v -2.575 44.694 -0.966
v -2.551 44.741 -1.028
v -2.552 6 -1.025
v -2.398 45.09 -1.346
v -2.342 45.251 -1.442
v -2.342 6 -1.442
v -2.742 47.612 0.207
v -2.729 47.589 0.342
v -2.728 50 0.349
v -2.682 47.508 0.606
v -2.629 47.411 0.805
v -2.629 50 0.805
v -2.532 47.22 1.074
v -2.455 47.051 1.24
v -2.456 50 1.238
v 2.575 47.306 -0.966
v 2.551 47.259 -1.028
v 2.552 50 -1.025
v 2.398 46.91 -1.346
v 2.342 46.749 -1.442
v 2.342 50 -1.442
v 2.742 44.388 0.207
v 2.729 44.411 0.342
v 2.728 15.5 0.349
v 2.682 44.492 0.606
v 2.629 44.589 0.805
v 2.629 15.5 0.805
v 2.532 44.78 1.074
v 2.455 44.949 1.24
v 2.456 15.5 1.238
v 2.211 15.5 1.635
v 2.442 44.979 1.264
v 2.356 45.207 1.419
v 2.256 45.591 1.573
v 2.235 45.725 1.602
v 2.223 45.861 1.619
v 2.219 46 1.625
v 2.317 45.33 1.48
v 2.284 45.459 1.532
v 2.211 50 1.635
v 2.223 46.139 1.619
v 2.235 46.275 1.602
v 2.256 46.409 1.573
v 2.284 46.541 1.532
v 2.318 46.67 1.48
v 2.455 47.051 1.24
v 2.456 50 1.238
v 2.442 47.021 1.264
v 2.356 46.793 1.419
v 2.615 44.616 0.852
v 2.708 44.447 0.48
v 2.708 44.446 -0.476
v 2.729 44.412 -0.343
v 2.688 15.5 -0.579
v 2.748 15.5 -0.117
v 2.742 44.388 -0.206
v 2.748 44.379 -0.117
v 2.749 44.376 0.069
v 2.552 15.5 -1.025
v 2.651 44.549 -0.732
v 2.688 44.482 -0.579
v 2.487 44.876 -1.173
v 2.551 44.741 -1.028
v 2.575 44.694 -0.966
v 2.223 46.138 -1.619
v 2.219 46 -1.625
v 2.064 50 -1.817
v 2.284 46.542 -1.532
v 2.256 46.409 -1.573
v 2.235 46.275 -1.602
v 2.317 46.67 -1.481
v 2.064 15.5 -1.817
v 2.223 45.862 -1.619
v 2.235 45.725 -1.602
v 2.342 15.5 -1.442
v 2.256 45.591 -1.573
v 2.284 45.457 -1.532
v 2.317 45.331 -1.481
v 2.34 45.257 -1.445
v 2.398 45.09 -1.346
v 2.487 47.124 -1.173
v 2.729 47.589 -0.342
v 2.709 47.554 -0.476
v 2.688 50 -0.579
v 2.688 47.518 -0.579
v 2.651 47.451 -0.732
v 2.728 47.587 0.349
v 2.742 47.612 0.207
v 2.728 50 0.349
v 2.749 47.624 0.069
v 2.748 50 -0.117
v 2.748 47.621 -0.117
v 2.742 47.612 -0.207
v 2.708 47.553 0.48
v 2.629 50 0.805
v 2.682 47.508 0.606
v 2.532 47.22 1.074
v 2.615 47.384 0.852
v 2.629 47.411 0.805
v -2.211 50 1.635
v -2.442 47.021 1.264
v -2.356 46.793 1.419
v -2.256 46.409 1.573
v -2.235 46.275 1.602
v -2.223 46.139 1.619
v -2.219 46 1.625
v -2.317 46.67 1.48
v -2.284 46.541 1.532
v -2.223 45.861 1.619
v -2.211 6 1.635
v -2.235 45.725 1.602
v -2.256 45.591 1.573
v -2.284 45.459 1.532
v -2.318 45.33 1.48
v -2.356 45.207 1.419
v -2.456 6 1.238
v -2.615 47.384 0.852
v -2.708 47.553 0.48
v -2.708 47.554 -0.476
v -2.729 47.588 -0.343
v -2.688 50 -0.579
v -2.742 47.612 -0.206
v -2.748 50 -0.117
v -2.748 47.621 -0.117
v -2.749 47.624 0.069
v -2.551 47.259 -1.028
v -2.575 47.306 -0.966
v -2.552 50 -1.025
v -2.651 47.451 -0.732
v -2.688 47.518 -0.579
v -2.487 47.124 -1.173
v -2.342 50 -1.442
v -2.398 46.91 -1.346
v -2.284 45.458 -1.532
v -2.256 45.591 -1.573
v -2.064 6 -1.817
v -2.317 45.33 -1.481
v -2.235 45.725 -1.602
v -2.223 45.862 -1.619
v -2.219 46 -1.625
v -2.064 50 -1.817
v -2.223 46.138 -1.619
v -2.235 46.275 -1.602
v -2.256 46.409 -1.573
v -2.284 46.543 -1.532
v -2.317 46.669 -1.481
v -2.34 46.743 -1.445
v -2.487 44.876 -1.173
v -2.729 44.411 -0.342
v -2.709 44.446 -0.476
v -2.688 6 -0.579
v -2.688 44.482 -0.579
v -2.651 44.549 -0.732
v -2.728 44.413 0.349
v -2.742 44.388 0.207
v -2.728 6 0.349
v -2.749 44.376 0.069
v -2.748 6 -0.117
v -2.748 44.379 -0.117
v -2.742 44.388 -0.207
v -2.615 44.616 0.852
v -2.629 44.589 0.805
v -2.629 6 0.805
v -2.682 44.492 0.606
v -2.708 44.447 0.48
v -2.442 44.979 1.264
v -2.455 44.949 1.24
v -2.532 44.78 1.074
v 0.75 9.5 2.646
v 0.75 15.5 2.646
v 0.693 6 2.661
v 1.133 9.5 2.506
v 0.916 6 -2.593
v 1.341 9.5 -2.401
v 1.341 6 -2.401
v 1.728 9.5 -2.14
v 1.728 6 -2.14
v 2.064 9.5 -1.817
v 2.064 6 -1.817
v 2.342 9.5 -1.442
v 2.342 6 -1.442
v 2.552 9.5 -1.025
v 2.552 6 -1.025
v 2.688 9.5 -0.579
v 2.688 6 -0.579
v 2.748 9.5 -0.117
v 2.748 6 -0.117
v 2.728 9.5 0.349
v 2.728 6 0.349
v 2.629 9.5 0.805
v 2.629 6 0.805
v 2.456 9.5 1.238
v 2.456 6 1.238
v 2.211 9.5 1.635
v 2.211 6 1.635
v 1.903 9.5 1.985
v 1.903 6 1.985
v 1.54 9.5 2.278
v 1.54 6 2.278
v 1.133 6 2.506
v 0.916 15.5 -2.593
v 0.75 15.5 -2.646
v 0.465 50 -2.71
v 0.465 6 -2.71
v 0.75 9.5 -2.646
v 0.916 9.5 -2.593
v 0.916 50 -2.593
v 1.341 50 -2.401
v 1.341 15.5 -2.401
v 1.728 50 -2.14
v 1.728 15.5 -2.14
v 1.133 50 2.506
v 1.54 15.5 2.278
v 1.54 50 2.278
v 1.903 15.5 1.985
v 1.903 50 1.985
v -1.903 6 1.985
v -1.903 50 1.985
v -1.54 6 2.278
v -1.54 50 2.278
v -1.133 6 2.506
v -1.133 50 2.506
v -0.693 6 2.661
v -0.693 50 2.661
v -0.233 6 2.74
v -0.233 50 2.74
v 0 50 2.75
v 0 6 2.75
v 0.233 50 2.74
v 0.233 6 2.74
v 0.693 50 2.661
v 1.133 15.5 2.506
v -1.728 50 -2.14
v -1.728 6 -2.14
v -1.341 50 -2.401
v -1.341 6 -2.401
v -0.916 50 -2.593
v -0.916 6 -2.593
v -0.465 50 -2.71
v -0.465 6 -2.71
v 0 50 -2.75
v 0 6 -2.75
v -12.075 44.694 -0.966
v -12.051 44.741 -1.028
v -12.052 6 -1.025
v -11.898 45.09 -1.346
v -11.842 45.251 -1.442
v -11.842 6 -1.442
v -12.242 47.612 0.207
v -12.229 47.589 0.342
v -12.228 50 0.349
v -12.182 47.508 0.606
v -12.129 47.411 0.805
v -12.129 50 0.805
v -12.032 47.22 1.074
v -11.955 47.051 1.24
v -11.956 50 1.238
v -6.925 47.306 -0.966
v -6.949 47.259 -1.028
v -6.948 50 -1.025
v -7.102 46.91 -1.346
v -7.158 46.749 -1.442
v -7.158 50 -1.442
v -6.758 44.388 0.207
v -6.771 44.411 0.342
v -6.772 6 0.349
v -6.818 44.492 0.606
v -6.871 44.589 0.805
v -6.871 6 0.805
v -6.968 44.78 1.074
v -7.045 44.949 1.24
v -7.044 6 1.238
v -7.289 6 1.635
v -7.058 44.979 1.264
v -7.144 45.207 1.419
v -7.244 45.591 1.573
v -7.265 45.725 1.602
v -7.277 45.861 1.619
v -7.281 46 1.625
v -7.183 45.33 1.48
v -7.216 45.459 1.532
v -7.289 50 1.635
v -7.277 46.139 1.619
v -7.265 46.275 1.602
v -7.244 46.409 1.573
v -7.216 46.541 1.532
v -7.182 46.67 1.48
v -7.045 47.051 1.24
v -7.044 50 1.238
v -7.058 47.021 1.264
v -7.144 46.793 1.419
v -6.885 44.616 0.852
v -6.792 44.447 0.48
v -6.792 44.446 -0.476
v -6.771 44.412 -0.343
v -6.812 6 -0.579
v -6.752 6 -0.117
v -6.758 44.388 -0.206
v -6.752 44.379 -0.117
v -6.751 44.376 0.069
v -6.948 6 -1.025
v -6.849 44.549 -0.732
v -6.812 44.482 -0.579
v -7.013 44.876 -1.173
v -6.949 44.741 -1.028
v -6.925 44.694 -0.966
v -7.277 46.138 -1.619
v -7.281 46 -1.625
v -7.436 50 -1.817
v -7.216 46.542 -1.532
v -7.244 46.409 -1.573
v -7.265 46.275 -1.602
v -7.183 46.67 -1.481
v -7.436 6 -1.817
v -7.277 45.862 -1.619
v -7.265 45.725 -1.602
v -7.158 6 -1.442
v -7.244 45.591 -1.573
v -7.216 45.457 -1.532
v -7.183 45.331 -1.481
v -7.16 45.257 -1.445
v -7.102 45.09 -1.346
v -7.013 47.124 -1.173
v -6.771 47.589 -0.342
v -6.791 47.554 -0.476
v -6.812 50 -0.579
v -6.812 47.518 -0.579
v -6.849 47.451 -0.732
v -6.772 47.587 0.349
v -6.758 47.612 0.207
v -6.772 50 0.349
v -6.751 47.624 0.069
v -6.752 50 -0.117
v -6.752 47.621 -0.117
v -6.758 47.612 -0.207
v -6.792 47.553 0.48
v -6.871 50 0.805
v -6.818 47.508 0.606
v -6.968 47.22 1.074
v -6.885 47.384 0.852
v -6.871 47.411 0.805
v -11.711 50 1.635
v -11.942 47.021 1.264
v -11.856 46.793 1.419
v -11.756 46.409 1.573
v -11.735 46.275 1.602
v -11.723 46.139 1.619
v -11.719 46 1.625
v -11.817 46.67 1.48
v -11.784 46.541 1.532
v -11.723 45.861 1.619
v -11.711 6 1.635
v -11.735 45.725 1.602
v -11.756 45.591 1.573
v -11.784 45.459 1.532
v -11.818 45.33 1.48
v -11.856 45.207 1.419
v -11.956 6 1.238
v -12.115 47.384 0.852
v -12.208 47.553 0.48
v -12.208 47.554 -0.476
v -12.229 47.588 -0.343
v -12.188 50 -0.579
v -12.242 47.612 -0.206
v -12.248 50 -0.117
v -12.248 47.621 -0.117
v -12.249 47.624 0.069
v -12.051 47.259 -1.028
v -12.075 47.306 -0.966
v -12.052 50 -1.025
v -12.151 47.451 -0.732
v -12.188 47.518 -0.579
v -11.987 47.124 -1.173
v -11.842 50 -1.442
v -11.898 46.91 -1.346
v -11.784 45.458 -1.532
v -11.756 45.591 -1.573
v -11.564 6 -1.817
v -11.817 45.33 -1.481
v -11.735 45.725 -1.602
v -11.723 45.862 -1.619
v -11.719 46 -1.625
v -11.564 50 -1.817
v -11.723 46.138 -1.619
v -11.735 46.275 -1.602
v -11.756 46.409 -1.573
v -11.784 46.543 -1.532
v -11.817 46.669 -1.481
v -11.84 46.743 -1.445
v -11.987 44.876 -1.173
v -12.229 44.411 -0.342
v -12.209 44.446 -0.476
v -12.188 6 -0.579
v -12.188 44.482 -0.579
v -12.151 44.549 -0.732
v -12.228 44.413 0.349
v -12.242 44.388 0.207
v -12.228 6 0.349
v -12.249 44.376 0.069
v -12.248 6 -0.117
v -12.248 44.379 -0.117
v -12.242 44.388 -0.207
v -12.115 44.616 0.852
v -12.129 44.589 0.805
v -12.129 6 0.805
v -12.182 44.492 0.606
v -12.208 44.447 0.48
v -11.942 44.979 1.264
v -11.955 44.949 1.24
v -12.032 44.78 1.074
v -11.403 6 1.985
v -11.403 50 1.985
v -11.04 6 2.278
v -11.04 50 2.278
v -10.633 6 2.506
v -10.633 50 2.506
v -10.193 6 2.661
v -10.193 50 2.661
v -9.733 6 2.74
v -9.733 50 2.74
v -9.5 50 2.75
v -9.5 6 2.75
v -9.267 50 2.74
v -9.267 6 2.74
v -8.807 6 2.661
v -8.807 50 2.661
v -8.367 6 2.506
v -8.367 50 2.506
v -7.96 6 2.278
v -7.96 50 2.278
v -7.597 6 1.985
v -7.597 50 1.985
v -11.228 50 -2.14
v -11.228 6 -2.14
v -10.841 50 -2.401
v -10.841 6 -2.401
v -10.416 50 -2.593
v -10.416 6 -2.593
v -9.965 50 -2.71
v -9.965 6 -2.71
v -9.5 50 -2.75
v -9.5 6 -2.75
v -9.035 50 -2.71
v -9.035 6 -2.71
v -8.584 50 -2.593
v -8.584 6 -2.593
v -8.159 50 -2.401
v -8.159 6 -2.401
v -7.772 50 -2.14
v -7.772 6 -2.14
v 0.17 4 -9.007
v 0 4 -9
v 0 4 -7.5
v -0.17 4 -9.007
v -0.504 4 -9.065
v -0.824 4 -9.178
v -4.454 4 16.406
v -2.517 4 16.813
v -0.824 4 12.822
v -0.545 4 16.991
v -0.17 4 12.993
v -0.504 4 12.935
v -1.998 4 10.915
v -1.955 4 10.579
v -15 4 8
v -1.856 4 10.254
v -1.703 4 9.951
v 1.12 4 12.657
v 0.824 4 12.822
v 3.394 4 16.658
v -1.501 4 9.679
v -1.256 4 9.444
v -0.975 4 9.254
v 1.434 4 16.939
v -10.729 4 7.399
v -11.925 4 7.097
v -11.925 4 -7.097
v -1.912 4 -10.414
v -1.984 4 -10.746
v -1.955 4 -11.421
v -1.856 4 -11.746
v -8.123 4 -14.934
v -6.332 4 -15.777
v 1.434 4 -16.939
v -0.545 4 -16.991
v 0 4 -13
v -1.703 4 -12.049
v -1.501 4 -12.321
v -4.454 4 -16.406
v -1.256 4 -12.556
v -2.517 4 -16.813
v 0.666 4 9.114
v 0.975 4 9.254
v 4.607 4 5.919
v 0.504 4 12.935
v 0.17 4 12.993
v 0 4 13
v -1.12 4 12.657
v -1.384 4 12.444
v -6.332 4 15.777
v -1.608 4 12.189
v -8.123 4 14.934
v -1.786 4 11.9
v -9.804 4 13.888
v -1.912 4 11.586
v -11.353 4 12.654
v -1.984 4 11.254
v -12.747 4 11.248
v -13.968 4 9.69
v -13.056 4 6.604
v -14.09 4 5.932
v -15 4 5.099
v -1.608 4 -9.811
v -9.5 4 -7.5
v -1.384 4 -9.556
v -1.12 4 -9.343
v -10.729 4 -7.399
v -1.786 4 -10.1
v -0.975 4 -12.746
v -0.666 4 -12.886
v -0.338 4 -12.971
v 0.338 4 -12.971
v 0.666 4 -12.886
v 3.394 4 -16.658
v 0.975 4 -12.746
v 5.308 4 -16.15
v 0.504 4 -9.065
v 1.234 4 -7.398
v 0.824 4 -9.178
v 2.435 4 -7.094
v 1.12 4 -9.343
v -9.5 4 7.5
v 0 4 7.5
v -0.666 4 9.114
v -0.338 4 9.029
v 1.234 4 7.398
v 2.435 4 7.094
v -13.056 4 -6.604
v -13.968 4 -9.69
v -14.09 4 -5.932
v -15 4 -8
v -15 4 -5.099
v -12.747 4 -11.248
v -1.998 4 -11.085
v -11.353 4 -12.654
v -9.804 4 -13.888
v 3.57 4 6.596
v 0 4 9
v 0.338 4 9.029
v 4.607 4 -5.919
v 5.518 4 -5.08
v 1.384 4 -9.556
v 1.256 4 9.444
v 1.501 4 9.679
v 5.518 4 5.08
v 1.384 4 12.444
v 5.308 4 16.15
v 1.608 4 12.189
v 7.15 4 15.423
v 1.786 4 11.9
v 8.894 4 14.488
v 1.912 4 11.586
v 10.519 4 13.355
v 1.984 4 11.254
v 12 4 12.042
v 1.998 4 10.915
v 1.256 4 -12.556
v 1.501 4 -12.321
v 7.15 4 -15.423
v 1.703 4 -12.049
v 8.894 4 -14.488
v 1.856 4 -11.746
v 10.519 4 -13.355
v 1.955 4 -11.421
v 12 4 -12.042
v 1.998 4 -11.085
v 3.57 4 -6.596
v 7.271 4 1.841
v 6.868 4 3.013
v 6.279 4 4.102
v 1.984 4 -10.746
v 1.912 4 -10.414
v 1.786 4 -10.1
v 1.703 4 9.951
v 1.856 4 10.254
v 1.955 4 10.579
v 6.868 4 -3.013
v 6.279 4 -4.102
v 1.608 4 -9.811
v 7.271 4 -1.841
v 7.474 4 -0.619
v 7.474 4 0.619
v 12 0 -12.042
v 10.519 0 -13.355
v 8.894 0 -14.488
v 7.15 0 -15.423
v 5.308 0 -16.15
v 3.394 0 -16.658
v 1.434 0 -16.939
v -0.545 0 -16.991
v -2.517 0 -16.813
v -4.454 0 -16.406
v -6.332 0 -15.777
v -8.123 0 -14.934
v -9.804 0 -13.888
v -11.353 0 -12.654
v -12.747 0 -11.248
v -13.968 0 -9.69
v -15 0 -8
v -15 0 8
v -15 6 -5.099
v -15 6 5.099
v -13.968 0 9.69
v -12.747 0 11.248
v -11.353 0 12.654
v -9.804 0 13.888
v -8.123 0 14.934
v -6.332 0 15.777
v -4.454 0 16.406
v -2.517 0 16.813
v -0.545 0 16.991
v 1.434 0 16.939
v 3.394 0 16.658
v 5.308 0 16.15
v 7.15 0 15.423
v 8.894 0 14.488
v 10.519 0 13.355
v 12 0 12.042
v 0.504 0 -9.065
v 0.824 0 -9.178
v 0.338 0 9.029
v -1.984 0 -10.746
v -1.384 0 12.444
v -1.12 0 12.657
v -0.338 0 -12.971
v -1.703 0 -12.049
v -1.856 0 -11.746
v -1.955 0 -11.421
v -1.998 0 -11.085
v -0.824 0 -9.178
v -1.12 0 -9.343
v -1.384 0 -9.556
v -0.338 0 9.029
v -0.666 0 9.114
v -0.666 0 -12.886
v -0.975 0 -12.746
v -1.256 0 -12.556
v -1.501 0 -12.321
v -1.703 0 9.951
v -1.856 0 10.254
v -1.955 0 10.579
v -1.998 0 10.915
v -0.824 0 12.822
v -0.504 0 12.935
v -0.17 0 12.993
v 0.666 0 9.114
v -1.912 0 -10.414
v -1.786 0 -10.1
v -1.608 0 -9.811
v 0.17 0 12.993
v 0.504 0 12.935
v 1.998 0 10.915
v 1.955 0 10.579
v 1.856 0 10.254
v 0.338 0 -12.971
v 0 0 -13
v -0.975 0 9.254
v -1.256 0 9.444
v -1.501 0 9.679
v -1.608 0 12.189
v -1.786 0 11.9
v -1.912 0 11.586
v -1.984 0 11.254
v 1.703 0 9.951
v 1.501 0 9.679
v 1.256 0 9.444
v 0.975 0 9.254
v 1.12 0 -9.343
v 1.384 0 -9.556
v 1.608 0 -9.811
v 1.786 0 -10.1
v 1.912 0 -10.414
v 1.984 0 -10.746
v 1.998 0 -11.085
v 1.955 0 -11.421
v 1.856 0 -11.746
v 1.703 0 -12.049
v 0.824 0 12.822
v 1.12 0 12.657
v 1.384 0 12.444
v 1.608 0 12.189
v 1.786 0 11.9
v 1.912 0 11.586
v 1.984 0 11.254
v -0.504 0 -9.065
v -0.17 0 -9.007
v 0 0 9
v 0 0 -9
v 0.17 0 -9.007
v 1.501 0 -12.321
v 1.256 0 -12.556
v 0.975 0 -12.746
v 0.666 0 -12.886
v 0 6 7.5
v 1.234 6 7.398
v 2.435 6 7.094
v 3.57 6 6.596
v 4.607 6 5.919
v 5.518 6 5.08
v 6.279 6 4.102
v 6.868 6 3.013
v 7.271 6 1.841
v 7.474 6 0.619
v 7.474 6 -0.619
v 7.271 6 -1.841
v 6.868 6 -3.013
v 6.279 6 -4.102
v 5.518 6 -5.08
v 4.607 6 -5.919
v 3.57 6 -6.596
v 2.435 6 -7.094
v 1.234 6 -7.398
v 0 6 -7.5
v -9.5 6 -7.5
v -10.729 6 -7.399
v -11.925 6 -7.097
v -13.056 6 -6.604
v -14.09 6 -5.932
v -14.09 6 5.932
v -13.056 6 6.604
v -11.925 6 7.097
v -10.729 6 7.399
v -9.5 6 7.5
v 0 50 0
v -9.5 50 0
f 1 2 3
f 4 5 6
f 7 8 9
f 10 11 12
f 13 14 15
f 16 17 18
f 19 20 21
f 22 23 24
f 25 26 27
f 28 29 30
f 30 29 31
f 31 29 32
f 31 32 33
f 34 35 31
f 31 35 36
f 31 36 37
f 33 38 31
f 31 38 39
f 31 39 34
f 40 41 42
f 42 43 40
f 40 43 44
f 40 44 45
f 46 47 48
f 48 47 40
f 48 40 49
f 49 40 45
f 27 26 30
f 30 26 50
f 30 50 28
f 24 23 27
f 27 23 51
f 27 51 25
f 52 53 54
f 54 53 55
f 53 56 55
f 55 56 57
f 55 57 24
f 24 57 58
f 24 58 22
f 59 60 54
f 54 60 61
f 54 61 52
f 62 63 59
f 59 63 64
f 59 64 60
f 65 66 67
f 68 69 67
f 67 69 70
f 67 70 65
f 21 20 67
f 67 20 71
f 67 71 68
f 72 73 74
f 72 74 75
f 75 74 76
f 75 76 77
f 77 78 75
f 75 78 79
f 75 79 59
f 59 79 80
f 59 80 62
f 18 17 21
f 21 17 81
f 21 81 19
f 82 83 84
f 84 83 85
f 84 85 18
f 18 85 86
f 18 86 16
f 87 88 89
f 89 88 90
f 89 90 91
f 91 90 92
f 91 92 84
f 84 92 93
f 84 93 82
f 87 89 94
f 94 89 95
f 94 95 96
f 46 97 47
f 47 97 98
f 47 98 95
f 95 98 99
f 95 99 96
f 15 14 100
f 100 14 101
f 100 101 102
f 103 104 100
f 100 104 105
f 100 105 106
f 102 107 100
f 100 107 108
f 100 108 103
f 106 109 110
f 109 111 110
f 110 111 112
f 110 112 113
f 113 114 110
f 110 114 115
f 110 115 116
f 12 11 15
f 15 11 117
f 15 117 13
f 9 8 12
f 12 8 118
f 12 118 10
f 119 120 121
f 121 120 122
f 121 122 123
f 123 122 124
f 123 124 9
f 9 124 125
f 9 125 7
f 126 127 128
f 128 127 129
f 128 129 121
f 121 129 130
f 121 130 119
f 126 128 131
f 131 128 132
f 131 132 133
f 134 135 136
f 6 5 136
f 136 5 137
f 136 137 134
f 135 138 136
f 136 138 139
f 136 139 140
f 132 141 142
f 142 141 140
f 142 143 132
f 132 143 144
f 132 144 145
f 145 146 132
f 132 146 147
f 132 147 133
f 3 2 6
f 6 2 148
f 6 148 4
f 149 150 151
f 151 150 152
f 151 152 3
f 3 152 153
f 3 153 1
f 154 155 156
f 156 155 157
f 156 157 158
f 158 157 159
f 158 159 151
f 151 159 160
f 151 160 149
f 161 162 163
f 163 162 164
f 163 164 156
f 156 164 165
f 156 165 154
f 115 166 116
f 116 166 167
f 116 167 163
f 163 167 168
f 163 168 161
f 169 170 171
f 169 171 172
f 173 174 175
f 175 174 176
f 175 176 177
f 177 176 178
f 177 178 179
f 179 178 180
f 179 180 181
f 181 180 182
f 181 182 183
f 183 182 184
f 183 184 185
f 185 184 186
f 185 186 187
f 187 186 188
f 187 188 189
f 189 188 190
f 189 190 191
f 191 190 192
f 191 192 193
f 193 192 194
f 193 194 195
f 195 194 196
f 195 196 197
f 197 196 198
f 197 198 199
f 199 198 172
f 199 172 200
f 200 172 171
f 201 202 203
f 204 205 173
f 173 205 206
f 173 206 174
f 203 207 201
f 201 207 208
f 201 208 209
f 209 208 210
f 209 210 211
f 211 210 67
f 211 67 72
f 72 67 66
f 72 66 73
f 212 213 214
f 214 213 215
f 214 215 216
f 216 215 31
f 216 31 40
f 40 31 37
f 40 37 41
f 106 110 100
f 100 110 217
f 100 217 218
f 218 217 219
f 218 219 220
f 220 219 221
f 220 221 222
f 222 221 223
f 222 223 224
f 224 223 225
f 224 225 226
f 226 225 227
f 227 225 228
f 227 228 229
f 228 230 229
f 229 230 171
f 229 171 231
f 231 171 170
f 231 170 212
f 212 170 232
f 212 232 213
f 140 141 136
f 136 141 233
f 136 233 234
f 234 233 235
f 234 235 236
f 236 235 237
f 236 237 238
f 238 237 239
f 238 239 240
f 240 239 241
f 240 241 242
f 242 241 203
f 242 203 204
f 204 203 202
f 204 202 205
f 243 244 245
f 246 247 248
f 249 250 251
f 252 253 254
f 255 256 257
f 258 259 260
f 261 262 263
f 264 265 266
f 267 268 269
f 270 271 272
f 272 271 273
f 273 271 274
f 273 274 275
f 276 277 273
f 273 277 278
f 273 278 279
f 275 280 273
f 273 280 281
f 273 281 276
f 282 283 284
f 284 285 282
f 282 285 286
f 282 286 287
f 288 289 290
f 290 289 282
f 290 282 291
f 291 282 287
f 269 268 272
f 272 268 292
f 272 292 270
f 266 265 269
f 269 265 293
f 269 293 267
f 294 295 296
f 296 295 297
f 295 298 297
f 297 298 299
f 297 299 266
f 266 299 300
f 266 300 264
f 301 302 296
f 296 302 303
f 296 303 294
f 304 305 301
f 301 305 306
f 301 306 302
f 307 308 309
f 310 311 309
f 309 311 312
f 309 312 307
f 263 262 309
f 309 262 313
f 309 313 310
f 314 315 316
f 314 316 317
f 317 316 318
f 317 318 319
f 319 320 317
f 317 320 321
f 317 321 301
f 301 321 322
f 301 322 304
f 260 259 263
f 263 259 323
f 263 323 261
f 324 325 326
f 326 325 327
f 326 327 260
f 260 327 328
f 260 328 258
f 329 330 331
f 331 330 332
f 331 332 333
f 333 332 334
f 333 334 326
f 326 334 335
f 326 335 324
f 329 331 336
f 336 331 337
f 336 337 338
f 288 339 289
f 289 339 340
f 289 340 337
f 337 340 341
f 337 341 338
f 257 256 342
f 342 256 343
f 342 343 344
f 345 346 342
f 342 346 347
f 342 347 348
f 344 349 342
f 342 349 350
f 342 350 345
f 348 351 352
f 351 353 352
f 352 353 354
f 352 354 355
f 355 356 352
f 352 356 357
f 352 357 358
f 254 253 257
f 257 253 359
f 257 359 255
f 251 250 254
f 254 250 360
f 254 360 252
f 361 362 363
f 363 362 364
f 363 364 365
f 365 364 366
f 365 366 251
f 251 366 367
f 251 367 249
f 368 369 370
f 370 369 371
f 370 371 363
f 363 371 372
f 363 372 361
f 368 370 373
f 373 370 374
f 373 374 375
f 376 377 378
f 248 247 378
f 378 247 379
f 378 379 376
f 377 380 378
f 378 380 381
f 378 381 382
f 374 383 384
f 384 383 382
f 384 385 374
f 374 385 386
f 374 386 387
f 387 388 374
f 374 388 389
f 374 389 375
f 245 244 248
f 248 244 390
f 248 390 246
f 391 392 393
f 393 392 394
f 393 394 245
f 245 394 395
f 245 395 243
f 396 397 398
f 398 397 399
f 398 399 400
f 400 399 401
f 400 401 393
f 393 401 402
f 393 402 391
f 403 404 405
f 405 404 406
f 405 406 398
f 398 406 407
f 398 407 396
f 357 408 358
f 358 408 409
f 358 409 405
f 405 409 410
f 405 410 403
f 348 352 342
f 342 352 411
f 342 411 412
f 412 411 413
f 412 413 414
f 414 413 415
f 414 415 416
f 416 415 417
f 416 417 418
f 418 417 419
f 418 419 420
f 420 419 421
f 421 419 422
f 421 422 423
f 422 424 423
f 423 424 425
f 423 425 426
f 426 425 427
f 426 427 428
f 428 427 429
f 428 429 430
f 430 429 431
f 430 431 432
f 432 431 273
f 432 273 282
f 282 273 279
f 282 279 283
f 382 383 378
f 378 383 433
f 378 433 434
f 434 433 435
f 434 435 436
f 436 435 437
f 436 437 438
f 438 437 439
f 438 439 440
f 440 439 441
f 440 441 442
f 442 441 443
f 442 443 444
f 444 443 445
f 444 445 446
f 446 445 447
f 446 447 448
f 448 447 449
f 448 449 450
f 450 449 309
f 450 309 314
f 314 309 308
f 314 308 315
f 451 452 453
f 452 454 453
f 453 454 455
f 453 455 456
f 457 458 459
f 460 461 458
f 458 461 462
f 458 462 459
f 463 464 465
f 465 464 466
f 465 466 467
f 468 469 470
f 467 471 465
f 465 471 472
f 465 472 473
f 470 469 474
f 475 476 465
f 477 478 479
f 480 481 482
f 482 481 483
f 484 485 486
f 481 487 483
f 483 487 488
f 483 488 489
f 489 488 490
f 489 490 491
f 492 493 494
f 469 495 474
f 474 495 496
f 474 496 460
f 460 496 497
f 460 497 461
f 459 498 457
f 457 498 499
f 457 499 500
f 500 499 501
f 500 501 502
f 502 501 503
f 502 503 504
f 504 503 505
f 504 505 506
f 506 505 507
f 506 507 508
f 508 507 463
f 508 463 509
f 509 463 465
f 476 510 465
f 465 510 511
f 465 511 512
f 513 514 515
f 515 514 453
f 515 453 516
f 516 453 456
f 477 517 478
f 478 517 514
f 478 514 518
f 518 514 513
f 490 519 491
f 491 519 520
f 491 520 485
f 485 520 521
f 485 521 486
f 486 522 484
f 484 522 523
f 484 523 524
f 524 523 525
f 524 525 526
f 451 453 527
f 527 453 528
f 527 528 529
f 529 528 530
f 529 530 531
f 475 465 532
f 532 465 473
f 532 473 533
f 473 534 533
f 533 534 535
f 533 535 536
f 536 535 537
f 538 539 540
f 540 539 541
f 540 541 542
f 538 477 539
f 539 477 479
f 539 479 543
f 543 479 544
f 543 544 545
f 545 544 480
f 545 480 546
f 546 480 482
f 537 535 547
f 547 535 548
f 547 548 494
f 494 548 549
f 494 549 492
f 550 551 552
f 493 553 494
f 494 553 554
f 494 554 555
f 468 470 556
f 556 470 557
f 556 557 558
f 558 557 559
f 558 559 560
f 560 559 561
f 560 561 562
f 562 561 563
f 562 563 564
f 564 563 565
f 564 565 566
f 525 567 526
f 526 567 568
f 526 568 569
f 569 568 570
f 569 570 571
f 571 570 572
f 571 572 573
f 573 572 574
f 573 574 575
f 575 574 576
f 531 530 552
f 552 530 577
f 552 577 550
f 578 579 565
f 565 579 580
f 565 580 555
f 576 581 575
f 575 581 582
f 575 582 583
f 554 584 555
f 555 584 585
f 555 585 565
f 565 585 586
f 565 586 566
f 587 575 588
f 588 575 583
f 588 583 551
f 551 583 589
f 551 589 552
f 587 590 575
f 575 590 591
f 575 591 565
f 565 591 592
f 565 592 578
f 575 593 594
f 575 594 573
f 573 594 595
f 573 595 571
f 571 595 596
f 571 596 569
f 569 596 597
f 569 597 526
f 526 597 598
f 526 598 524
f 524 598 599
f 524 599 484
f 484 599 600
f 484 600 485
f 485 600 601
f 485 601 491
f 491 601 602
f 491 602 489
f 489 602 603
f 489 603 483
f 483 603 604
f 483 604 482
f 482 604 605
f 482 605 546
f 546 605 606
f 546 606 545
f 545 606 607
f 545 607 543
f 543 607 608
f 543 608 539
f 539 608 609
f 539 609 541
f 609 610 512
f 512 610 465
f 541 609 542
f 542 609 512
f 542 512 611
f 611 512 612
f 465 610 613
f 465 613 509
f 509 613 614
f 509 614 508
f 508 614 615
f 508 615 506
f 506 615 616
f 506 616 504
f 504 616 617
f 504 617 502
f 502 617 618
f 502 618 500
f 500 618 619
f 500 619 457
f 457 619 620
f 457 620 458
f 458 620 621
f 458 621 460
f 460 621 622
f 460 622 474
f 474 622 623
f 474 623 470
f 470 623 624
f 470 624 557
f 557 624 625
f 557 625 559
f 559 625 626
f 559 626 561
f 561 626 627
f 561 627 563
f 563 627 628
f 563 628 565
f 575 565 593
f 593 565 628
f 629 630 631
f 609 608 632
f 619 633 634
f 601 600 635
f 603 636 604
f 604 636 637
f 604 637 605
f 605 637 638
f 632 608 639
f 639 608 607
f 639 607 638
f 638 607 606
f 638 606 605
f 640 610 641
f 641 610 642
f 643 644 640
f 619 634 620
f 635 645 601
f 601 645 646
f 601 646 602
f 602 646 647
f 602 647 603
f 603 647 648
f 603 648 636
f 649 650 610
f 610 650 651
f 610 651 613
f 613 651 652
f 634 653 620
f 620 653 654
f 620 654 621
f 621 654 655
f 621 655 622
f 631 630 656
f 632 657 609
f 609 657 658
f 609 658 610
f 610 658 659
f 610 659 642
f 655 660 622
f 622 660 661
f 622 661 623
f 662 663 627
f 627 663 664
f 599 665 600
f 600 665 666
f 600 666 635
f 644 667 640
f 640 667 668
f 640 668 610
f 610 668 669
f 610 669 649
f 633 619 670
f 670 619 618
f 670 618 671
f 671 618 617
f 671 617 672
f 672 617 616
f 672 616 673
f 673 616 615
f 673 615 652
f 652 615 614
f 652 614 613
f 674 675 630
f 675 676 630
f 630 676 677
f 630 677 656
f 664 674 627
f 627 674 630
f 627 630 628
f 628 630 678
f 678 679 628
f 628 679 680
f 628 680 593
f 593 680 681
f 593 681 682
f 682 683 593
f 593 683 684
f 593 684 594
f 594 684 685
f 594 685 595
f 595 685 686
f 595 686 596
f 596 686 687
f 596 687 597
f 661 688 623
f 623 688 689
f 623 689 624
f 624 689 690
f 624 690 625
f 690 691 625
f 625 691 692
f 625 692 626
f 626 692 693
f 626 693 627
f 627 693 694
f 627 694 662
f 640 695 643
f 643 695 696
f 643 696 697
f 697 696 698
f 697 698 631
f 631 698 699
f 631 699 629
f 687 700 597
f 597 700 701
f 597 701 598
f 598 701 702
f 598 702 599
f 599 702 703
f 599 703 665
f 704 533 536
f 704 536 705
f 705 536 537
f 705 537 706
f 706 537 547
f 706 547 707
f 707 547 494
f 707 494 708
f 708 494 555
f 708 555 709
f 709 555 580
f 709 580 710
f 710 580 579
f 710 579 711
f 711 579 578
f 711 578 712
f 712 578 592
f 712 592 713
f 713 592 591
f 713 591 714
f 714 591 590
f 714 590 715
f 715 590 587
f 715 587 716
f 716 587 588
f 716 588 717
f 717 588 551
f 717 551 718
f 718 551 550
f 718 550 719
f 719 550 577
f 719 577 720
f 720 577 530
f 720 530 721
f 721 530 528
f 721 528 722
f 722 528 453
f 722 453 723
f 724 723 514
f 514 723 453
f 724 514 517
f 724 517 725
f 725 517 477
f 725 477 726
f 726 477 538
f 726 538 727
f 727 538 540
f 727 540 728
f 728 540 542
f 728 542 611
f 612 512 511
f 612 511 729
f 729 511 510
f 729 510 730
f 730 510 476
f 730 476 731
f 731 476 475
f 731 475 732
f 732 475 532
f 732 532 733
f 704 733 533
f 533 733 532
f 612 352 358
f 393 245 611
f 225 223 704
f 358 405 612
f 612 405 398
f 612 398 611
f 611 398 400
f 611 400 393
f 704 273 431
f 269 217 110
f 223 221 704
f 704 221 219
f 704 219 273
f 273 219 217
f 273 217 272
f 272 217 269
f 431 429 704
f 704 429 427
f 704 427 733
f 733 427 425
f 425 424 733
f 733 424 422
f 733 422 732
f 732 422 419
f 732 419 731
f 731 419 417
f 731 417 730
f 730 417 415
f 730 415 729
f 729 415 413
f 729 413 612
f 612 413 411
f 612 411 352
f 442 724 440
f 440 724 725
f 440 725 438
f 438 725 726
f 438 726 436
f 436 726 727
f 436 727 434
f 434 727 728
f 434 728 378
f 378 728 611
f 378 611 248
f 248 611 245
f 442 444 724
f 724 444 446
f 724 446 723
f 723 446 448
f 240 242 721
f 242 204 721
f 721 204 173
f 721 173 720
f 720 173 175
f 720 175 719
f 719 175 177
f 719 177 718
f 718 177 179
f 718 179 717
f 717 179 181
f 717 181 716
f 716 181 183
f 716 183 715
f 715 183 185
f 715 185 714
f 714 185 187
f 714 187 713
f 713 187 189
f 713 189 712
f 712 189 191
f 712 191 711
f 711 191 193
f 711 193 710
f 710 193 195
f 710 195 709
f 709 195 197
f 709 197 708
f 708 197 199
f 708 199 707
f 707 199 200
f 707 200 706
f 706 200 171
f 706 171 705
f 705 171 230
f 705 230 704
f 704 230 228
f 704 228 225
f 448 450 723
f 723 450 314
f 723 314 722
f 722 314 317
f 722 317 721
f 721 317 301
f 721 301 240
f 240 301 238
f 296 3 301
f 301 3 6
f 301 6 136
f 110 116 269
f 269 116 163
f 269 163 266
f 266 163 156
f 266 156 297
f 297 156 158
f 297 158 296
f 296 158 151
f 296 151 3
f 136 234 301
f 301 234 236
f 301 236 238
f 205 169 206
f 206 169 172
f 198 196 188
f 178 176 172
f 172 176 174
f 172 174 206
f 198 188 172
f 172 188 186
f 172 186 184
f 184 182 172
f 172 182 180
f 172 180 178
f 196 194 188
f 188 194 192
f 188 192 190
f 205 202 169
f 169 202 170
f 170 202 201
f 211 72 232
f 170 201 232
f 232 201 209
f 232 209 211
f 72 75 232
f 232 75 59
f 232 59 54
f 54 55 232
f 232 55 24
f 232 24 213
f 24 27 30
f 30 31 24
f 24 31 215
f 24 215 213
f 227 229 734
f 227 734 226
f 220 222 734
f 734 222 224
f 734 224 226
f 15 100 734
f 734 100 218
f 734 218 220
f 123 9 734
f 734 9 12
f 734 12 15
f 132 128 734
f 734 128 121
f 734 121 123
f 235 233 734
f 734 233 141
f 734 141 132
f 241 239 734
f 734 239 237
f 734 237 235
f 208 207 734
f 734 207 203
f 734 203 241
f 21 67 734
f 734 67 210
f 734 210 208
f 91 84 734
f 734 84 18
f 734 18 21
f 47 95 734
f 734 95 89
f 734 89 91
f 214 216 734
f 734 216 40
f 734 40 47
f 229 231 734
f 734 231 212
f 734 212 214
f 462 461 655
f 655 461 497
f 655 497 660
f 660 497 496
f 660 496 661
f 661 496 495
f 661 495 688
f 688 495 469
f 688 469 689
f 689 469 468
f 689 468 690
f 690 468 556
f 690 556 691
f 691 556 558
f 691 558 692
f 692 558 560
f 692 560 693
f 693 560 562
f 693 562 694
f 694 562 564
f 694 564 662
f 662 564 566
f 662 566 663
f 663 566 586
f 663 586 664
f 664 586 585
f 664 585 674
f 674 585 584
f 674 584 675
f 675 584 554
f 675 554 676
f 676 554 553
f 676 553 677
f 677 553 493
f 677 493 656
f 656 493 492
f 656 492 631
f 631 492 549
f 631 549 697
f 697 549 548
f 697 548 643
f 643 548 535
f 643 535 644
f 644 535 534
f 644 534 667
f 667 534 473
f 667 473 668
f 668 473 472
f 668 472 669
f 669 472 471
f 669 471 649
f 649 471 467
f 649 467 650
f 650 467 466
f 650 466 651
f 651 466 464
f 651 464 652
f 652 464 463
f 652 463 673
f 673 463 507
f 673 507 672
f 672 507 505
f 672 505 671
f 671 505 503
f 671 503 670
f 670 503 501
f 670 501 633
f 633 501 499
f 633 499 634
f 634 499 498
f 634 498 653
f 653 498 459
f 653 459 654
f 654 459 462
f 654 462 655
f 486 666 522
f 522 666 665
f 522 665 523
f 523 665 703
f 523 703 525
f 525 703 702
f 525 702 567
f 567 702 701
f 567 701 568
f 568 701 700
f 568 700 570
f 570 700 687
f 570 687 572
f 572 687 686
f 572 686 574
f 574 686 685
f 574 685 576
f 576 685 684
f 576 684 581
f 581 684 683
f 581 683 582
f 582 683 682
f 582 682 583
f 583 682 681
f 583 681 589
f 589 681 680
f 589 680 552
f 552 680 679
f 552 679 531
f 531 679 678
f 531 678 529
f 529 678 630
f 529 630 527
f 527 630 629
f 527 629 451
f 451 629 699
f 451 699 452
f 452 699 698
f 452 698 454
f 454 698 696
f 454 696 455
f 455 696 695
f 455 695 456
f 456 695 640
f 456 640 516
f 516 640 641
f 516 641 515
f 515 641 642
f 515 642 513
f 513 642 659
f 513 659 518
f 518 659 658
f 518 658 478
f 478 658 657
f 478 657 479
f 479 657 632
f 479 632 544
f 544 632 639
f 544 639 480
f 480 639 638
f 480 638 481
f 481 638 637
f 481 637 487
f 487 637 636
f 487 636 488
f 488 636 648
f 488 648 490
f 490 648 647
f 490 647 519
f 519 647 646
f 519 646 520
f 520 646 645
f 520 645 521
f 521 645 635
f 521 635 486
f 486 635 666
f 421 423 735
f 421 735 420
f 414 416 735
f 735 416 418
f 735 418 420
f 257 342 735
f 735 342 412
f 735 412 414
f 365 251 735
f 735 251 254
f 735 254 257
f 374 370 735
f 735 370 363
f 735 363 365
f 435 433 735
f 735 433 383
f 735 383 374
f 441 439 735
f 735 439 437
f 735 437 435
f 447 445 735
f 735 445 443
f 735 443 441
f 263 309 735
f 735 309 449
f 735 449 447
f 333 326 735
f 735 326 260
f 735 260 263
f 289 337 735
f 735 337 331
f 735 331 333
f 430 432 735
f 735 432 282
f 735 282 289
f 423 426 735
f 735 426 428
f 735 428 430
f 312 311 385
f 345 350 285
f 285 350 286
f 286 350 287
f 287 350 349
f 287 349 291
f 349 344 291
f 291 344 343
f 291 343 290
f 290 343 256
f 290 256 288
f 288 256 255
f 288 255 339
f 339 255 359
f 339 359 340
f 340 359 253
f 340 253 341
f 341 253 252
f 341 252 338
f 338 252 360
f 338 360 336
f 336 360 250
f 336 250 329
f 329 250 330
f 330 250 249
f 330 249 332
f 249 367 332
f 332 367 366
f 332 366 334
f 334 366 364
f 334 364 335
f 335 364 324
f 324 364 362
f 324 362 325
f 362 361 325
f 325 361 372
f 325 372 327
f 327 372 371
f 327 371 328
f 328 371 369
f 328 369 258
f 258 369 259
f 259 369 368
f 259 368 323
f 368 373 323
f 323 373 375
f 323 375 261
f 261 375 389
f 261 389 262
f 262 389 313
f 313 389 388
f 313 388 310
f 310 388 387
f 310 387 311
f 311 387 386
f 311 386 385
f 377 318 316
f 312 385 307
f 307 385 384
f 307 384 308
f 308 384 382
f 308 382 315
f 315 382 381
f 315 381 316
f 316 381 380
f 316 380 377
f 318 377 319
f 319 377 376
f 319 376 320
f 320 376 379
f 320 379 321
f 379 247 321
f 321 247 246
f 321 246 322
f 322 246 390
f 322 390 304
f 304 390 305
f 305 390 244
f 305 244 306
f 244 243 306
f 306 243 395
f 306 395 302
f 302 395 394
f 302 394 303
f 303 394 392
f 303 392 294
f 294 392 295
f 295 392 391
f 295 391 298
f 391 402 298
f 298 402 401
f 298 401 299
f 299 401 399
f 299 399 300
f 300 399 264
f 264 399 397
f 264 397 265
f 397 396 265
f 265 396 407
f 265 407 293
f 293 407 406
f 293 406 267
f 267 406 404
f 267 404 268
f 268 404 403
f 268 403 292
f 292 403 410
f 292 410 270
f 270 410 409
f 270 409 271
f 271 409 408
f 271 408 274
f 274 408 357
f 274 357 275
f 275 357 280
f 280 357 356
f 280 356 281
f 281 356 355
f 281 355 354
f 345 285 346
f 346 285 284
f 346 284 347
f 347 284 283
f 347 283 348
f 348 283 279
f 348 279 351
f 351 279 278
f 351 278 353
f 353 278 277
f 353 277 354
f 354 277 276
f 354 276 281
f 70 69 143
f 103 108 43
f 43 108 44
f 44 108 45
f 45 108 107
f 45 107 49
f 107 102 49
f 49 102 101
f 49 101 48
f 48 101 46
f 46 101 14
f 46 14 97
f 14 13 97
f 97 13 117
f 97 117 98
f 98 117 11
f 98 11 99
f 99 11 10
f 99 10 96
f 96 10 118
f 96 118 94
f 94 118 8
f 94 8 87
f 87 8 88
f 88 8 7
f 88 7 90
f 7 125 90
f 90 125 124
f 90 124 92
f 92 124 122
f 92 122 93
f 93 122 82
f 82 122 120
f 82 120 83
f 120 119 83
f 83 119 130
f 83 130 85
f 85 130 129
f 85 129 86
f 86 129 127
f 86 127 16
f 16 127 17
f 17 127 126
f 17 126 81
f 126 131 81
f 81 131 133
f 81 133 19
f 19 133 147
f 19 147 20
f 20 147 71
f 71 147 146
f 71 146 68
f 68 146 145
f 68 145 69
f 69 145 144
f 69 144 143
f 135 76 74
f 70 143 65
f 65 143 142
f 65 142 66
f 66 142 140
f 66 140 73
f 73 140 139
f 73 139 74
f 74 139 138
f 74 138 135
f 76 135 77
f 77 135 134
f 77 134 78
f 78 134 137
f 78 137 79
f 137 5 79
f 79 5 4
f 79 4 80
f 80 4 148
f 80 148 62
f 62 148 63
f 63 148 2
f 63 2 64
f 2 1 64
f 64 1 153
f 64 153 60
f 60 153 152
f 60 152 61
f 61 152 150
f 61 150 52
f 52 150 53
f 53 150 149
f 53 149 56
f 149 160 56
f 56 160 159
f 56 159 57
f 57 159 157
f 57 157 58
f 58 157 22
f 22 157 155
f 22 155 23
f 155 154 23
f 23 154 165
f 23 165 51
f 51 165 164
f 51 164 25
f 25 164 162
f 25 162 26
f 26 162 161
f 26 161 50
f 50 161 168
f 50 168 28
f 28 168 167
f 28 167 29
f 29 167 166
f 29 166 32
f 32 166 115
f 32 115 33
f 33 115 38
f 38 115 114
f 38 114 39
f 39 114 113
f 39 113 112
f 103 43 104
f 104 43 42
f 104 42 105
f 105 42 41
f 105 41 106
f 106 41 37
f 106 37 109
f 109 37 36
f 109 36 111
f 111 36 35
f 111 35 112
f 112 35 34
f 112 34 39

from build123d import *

# Parameters (mm, degrees)
BOSS_EXTRUDE1_DEPTH     = 4
SKETCH2_R               = 2.75
BOSS_EXTRUDE2_DEPTH     = 50
SKETCH3_W               = 2
SKETCH3_H               = 6
CUT_EXTRUDE1_DEPTH      = 18
CUT_EXTRUDE1_DEPTH_BACK = 18
BOSS_EXTRUDE3_DEPTH     = 6
SKETCH7_R               = 2
CUT_EXTRUDE3_DEPTH      = 10
SKETCH8_R               = 2.75
BOSS_EXTRUDE4_DEPTH     = 50
SKETCH6_R               = 1.625
CUT_EXTRUDE2_DEPTH      = 13
CUT_EXTRUDE2_DEPTH_BACK = 16


with BuildPart() as part:
    # Sketch1 → Boss-Extrude1 (new body)
    with BuildSketch(Plane(origin=(0, 0, 0), x_dir=(1, 0, 0), z_dir=(0, 1, 0))):
        with BuildLine():
            Line((-15, 8), (-15, -8))
            ThreePointArc((-15, -8), (-2.516668767, -16.812685042), (12, -12.041594579))
            Line((12, -12.041594579), (12, 12.041594579))
            ThreePointArc((12, 12.041594579), (-2.516668767, 16.812685042), (-15, 8))
        make_face()
    extrude(amount=BOSS_EXTRUDE1_DEPTH)

    # Sketch2 → Boss-Extrude2 (add)
    with BuildSketch(Plane(origin=(0, 0, 0), x_dir=(1, 0, 0), z_dir=(0, 1, 0))):
        Circle(SKETCH2_R)
    extrude(amount=BOSS_EXTRUDE2_DEPTH)

    # Sketch3 → Cut-Extrude1 (cut, two sides)
    with BuildSketch(Plane.XY) as cut_extrude1_sk:
        with Locations((1.75, 12.5)):
            Rectangle(SKETCH3_W, SKETCH3_H)
    extrude(amount=CUT_EXTRUDE1_DEPTH, mode=Mode.SUBTRACT)
    extrude(cut_extrude1_sk.sketch, amount=-CUT_EXTRUDE1_DEPTH_BACK, mode=Mode.SUBTRACT)

    # Sketch4 → Boss-Extrude3 (add)
    with BuildSketch(Plane(origin=(0, 0, 0), x_dir=(1, 0, 0), z_dir=(0, 1, 0))):
        with BuildLine():
            Line((0, -7.5), (-9.5, -7.5))
            ThreePointArc((-9.5, -7.5), (-12.500612741, -6.873596088), (-15, -5.099019514))
            Line((-15, -5.099019514), (-15, 5.099019514))
            ThreePointArc((-15, 5.099019514), (-12.500612741, 6.873596088), (-9.5, 7.5))
            Line((-9.5, 7.5), (0, 7.5))
            ThreePointArc((0, 7.5), (7.5, 0), (0, -7.5))
        make_face()
    extrude(amount=BOSS_EXTRUDE3_DEPTH)

    # Sketch7 → Cut-Extrude3 (cut)
    with BuildSketch(Plane(origin=(0, 0, 0), x_dir=(1, 0, 0), z_dir=(0, 1, 0))):
        with Locations((0, 11)):
            Circle(SKETCH7_R)
        with Locations((0, -11)):
            Circle(SKETCH7_R)
    extrude(amount=CUT_EXTRUDE3_DEPTH, mode=Mode.SUBTRACT)

    # Sketch8 → Boss-Extrude4 (add)
    with BuildSketch(Plane(origin=(0, 0, 0), x_dir=(1, 0, 0), z_dir=(0, 1, 0))):
        with Locations((-9.5, 0)):
            Circle(SKETCH8_R)
    extrude(amount=BOSS_EXTRUDE4_DEPTH)

    # Sketch6 → Cut-Extrude2 (cut, two sides)
    with BuildSketch(Plane(origin=(0, 0, 0), x_dir=(0, 0, -1), z_dir=(1, 0, 0))) as cut_extrude2_sk:
        with Locations((0, 46)):
            Circle(SKETCH6_R)
    extrude(amount=CUT_EXTRUDE2_DEPTH, mode=Mode.SUBTRACT)
    extrude(cut_extrude2_sk.sketch, amount=-CUT_EXTRUDE2_DEPTH_BACK, mode=Mode.SUBTRACT)


solid = part.part
